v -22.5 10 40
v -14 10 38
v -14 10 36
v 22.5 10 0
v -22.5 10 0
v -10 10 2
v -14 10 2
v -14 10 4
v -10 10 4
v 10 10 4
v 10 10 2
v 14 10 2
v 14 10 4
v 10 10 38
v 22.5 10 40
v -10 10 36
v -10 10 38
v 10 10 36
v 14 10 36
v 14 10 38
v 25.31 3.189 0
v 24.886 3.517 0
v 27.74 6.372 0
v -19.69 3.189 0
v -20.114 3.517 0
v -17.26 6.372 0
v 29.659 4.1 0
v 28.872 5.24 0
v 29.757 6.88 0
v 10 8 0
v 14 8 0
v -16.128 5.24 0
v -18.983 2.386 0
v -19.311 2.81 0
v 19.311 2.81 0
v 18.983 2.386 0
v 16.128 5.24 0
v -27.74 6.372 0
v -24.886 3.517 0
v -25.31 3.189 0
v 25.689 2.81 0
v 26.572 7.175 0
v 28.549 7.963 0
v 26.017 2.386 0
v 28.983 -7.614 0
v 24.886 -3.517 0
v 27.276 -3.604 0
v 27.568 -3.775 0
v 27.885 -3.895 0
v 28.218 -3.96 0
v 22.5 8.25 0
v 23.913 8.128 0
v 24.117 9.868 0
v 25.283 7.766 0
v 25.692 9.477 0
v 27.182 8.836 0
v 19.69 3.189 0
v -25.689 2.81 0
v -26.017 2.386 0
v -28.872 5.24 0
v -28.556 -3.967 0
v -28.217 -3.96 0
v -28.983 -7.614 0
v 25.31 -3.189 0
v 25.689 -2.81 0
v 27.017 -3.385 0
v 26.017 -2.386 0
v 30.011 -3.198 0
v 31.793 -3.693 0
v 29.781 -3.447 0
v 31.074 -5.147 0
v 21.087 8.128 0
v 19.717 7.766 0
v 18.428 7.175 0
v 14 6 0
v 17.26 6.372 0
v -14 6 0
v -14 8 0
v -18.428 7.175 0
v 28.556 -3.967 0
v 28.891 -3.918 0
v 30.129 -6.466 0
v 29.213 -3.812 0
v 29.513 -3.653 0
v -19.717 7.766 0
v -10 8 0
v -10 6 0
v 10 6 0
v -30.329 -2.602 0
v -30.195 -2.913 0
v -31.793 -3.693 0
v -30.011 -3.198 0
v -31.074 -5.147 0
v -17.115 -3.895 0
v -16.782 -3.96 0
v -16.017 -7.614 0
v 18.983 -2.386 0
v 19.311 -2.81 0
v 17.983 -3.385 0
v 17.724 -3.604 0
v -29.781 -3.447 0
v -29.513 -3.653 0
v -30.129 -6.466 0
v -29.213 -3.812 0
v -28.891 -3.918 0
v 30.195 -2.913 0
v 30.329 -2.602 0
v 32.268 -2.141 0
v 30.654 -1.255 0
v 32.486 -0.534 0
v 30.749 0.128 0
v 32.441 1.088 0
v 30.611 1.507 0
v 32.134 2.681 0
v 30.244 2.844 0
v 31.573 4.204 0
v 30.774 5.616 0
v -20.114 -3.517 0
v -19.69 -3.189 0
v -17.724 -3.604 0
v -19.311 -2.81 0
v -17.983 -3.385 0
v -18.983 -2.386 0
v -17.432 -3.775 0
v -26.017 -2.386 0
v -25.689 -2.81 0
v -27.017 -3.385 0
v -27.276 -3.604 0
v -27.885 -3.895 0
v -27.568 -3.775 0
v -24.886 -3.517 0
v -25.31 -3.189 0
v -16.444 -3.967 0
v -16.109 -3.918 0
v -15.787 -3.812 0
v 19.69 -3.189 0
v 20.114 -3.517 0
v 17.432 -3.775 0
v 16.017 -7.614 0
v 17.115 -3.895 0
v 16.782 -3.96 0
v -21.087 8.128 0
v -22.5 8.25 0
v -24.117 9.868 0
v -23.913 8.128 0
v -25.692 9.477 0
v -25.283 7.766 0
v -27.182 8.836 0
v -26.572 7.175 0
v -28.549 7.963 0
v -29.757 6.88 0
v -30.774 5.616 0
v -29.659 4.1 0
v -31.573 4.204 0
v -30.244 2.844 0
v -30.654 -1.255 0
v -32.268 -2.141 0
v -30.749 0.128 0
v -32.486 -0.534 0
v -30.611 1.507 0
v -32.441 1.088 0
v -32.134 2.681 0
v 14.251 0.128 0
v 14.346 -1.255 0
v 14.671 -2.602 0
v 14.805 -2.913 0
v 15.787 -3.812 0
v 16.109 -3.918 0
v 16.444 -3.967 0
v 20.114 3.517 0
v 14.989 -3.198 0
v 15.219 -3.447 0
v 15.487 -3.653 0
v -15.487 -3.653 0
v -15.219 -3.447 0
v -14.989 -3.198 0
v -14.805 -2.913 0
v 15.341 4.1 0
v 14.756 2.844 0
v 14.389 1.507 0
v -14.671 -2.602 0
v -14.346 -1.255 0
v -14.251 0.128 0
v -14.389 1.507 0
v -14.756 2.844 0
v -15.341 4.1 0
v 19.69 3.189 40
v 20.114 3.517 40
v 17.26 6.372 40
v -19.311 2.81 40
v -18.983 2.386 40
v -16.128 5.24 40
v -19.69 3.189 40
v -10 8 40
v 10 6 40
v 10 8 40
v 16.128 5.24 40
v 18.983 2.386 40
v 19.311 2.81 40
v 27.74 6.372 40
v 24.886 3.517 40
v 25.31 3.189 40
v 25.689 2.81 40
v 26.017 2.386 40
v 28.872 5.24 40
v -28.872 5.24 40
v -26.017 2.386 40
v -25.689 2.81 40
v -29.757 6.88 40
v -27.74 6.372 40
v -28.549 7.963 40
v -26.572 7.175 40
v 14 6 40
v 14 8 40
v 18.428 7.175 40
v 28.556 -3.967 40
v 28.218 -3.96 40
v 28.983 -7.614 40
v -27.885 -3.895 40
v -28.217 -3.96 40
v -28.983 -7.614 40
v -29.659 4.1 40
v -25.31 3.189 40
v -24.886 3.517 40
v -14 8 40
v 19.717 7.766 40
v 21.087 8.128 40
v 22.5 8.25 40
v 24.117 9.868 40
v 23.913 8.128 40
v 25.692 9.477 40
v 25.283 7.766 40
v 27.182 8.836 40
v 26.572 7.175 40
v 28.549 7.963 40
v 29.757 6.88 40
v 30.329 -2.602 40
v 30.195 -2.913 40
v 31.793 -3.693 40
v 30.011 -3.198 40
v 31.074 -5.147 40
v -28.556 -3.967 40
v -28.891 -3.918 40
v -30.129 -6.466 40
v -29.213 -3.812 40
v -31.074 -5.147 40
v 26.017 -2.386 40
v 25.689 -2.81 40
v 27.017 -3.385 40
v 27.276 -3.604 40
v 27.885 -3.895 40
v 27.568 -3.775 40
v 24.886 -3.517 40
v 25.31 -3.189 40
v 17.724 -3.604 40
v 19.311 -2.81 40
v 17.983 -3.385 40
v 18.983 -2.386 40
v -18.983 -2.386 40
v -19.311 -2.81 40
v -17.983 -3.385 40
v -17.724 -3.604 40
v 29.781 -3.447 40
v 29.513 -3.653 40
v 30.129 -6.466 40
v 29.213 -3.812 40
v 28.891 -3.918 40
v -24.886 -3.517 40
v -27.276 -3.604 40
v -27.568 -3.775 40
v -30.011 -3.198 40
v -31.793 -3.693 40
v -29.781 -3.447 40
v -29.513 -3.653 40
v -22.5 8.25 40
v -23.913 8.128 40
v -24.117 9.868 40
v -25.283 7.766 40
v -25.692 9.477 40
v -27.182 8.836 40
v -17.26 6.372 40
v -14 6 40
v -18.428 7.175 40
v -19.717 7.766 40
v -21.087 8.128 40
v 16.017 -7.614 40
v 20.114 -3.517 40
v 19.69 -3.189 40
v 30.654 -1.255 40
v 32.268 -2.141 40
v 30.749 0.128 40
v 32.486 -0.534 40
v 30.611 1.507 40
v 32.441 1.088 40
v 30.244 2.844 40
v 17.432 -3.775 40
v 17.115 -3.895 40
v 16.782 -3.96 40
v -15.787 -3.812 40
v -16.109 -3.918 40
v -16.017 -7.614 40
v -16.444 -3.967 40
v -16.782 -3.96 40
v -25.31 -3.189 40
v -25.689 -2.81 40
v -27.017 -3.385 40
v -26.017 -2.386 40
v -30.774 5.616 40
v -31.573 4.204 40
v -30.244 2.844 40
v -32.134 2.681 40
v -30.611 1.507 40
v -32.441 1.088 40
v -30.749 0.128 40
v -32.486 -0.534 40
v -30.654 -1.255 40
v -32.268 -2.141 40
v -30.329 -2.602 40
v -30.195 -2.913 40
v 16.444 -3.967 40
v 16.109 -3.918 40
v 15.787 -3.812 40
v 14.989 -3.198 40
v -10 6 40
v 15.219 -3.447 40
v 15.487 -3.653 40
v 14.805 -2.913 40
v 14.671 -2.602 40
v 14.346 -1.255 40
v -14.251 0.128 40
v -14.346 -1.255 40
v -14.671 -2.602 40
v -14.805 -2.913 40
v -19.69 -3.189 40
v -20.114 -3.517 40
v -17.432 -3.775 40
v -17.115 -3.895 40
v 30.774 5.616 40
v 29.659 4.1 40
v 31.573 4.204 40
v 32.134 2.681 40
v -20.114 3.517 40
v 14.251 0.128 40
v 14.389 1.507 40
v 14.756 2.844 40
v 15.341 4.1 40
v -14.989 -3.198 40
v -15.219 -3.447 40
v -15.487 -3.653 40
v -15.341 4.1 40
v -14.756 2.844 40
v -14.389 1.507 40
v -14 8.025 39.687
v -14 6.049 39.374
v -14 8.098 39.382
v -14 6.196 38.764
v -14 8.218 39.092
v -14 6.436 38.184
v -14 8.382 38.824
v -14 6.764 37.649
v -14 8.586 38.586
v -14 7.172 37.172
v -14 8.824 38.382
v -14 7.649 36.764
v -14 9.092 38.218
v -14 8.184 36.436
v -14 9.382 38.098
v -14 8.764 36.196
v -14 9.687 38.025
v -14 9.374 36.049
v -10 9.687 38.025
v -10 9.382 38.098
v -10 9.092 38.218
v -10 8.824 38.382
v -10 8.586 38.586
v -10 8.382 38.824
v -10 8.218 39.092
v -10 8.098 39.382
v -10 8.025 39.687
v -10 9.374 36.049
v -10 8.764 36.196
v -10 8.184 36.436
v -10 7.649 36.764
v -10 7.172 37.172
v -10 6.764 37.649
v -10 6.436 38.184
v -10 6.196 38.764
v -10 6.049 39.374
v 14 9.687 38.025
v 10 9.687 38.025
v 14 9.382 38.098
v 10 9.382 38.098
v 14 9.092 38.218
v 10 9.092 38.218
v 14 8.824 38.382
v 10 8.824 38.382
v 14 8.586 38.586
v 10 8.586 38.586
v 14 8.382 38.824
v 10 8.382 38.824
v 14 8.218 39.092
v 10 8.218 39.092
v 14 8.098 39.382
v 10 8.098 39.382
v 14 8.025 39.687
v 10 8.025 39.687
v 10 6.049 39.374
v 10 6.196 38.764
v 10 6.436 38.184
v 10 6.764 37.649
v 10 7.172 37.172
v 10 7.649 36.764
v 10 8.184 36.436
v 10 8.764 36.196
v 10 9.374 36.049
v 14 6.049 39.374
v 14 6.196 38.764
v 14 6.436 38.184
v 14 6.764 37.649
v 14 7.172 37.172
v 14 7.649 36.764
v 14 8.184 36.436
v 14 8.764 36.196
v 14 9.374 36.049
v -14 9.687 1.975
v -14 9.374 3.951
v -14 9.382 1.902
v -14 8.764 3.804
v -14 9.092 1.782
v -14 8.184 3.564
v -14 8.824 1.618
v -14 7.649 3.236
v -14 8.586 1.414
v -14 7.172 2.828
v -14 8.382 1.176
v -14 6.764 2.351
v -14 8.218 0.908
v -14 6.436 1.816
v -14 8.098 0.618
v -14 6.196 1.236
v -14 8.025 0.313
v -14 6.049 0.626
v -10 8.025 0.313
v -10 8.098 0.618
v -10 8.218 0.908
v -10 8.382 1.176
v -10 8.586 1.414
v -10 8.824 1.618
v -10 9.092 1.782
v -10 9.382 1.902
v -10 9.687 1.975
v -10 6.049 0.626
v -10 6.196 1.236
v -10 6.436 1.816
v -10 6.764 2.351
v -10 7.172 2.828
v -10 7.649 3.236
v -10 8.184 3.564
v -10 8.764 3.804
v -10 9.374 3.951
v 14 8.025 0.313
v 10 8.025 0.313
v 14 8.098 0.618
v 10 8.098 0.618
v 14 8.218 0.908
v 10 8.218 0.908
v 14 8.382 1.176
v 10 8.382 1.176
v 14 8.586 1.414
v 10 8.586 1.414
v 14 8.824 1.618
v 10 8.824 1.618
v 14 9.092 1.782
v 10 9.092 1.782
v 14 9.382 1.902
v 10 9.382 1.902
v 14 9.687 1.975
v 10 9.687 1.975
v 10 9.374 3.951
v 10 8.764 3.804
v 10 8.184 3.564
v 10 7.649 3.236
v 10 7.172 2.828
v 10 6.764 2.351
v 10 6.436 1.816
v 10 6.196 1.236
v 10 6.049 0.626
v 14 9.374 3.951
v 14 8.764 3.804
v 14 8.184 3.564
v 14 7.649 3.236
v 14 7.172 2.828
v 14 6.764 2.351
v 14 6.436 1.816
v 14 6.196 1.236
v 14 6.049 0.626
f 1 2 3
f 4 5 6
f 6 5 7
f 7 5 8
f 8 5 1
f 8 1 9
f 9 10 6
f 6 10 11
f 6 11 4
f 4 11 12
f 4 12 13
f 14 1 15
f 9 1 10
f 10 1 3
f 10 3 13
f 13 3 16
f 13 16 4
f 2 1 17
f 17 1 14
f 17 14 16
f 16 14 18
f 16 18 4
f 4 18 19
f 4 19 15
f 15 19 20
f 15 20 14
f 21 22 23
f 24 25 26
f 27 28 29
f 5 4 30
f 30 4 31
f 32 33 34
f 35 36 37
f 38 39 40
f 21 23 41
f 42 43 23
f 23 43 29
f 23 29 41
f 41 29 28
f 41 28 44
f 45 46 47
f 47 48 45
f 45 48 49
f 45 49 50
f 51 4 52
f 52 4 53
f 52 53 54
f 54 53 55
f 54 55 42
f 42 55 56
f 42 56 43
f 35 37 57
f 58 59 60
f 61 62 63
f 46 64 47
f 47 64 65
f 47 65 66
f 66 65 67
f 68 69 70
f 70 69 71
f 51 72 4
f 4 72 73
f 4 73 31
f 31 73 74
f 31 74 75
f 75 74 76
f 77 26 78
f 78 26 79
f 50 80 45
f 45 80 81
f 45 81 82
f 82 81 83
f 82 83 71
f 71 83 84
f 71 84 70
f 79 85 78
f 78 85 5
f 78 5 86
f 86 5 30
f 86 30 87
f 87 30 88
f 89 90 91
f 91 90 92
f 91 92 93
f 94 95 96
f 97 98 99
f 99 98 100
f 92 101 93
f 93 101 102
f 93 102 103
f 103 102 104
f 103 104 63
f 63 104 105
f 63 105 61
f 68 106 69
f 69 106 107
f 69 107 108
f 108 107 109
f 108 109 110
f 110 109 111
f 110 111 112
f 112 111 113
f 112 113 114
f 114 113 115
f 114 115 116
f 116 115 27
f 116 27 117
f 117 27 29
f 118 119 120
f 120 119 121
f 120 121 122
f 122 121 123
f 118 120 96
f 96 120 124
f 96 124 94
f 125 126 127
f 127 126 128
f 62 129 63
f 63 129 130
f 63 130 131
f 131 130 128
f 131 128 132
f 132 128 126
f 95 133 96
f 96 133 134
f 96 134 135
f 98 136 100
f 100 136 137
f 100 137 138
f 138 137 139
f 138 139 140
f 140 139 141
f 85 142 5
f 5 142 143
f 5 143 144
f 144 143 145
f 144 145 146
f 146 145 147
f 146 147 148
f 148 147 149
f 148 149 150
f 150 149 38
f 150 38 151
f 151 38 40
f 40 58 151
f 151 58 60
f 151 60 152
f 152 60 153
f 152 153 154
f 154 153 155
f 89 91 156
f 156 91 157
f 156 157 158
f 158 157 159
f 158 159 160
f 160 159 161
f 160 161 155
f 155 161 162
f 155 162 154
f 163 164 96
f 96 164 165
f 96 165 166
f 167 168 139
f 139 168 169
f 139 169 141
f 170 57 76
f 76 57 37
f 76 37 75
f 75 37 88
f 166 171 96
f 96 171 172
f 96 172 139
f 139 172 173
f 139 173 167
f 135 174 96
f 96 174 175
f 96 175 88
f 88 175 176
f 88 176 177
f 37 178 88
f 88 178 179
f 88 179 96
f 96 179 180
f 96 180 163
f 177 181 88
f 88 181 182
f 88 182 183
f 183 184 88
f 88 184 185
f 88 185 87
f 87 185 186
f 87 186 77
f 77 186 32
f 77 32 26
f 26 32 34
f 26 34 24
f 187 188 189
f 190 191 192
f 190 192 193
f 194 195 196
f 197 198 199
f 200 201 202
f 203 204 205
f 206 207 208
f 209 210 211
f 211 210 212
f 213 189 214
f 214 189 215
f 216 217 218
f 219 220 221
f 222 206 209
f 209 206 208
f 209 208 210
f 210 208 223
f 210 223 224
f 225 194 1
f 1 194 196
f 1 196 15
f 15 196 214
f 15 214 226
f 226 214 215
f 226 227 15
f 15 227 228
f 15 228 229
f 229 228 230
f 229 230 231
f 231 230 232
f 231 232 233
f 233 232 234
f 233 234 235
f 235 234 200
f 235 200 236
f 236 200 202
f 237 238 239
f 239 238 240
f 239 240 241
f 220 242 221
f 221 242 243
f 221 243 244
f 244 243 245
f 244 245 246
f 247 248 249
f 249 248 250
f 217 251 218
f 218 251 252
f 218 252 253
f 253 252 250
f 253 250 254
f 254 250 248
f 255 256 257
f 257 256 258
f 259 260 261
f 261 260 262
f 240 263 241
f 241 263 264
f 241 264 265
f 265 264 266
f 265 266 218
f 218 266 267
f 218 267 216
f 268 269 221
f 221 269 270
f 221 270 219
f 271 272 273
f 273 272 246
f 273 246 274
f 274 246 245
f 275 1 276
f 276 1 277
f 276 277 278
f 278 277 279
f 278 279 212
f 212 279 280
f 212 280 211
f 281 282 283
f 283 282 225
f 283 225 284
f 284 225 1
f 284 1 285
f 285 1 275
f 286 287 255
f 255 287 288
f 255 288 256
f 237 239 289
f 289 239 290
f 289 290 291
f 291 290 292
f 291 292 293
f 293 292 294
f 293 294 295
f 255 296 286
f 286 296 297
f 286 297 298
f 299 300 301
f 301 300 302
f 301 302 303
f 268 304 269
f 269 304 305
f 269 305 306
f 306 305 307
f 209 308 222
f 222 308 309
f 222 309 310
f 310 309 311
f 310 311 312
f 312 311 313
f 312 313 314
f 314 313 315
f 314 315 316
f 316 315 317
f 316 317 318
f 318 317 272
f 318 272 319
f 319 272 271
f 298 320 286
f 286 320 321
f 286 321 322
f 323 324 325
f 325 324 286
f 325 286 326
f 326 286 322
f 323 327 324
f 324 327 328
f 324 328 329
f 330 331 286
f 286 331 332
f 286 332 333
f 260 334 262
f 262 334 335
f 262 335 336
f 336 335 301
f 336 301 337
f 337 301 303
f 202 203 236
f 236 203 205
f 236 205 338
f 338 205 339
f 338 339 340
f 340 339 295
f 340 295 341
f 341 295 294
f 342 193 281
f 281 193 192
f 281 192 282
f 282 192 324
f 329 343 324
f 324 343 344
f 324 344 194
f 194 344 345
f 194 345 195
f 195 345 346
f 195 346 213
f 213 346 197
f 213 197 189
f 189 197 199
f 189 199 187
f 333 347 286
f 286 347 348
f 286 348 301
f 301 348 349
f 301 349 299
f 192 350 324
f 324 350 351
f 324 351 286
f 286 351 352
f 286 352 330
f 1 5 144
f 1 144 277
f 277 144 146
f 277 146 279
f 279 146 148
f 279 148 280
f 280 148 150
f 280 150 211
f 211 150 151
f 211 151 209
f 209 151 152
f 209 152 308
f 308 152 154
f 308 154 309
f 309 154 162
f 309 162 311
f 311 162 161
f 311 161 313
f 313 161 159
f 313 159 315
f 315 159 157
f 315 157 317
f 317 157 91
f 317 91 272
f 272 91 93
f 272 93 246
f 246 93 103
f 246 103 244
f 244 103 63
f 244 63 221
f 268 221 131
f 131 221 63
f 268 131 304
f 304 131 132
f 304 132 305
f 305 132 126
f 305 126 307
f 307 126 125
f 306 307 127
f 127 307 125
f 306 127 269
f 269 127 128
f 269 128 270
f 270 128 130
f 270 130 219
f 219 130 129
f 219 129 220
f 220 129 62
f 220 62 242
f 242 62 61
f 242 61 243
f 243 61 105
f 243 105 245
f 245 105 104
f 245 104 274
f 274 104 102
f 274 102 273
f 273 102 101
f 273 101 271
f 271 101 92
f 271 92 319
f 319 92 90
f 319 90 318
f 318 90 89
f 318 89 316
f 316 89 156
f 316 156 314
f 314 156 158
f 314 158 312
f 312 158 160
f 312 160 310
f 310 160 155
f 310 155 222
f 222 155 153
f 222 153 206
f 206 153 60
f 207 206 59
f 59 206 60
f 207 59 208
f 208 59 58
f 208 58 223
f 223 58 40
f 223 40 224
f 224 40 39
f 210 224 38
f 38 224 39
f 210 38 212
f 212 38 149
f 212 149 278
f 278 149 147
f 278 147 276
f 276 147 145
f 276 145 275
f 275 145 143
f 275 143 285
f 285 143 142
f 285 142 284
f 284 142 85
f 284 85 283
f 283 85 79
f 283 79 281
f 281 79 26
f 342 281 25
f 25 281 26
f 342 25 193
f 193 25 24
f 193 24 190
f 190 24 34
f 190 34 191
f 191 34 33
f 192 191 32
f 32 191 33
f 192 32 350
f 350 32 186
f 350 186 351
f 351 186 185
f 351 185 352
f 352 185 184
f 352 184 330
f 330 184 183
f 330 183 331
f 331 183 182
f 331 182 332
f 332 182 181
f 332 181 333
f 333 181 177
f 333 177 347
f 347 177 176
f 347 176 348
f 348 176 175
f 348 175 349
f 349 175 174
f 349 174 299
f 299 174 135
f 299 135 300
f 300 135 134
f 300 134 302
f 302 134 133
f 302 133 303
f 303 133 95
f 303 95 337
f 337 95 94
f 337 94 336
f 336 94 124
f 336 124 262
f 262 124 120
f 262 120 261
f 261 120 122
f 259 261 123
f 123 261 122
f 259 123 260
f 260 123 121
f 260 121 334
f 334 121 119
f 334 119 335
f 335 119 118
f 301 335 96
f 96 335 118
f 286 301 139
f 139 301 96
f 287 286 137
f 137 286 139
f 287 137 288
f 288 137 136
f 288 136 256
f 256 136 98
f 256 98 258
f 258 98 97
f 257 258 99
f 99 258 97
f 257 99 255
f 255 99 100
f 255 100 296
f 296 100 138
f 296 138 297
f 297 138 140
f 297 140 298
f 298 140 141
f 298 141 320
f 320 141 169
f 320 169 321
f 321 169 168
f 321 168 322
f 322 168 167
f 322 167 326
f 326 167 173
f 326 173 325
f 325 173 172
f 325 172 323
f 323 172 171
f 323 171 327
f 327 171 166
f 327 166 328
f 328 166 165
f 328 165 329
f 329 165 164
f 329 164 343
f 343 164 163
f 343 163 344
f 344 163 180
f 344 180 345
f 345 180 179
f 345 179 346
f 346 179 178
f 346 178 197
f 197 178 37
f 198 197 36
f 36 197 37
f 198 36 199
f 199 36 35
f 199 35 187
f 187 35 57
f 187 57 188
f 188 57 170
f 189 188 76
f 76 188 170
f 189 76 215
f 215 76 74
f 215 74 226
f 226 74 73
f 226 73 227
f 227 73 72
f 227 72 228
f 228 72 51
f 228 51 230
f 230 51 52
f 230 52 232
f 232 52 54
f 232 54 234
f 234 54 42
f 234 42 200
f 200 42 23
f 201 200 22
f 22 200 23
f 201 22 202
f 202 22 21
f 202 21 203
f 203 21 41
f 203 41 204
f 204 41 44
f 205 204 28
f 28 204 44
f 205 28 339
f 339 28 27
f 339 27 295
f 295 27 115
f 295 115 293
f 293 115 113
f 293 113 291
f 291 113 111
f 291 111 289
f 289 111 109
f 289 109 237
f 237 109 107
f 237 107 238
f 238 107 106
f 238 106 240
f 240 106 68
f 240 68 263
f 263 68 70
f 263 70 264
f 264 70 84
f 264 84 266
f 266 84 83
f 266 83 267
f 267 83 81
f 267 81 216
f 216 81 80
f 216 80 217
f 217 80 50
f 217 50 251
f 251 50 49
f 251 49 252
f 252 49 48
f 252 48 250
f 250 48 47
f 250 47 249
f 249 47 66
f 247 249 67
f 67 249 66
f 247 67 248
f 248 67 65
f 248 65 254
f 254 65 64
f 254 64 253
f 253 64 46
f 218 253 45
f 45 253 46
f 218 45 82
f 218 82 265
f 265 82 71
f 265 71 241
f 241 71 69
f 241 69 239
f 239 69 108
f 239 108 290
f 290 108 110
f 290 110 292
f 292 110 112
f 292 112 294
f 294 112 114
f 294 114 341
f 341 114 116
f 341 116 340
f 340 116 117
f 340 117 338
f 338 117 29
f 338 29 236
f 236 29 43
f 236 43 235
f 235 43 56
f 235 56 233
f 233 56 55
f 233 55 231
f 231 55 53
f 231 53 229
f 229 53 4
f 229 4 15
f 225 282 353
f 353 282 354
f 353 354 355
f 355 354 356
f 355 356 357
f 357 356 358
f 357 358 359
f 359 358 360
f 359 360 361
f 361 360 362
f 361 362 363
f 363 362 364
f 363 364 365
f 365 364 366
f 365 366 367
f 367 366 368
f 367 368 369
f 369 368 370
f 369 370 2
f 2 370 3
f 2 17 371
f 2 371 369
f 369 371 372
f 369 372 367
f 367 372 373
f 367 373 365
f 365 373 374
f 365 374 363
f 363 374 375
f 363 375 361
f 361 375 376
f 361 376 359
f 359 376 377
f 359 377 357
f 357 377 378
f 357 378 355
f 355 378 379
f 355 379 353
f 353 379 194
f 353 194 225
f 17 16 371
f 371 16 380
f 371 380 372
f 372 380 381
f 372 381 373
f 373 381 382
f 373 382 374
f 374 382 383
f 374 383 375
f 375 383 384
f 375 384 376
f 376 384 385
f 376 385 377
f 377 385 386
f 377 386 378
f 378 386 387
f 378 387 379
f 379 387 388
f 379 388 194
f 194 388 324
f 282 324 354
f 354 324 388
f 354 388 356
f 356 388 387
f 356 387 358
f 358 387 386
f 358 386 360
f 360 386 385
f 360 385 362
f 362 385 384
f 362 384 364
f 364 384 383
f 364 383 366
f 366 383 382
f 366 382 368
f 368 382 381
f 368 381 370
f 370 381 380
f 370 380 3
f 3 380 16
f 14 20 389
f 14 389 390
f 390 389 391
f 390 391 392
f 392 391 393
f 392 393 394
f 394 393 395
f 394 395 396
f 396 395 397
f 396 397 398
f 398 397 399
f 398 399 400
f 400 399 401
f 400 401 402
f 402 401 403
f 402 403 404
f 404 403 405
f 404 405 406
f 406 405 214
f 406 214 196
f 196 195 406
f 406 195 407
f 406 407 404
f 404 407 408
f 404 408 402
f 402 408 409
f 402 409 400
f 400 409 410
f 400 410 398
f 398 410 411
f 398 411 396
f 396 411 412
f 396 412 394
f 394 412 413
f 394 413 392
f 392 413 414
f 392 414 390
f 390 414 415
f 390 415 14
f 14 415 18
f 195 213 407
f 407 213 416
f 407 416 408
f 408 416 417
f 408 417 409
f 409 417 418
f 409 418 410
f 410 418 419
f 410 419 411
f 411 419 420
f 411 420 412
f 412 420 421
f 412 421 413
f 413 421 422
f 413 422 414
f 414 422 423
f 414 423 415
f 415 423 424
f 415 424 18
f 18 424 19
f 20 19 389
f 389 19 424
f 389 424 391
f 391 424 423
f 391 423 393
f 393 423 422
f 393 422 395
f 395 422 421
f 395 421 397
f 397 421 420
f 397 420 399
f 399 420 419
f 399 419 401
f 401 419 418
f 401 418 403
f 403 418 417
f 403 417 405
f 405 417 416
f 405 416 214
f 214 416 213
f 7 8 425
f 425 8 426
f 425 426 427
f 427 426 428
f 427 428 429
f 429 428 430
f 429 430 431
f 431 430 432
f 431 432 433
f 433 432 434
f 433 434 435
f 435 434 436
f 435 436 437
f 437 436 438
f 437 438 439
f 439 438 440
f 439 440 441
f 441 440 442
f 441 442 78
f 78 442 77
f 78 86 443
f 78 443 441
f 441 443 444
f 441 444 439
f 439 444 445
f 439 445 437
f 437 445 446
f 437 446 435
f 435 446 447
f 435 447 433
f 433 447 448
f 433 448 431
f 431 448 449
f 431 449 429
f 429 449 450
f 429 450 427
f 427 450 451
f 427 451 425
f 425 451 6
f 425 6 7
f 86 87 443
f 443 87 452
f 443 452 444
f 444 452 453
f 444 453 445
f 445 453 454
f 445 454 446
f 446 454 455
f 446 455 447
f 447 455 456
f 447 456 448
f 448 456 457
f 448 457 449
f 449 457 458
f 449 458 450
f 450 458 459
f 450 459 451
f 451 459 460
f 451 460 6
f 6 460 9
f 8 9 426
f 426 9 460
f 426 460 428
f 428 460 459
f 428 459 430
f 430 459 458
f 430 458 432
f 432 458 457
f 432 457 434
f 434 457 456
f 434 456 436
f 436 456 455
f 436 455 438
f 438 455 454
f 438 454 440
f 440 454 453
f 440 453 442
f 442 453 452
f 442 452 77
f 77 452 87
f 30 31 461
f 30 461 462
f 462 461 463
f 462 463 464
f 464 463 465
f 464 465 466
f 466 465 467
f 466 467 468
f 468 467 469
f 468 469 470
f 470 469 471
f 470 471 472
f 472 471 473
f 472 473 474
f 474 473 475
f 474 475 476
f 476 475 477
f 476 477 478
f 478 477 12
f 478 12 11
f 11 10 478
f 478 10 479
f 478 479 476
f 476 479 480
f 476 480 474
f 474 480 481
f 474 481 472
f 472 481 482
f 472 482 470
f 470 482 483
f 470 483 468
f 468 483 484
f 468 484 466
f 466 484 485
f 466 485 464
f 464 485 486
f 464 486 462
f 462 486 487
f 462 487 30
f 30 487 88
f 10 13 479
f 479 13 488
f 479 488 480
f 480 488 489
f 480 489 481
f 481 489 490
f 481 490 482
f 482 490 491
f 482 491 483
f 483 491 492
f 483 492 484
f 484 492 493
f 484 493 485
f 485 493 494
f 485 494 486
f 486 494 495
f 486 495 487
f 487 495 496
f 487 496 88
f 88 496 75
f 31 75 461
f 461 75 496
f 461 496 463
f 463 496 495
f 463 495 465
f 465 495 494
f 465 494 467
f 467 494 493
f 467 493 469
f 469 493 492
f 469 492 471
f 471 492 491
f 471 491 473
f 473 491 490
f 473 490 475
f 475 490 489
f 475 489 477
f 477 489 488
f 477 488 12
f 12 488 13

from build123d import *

# Parameters (mm, degrees)
BOSS_EXTRUDE1_DEPTH = 40


with BuildPart() as part:
    # Sketch1 → Boss-Extrude1 (new body)
    with BuildSketch(Plane.XY):
        with BuildLine():
            Line((-18.982831897, 2.385797253), (-16.128175583, 5.240453568))
            ThreePointArc((-16.128175583, 5.240453568), (-14.388813512, 1.507034758), (-14.671071516, -2.601995157))
            ThreePointArc((-14.671071516, -2.601995157), (-16.108631881, -3.917504194), (-17.983207135, -3.385422015))
            Line((-17.983207135, -3.385422015), (-18.982831897, -2.385797253))
            ThreePointArc((-18.982831897, -2.385797253), (-19.49479618, -3.00520382), (-20.114202747, -3.517168103))
            Line((-20.114202747, -3.517168103), (-16.01728135, -7.6140895))
            Line((-16.01728135, -7.6140895), (16.01728135, -7.6140895))
            Line((16.01728135, -7.6140895), (20.114202747, -3.517168103))
            ThreePointArc((20.114202747, -3.517168103), (19.49479618, -3.00520382), (18.982831897, -2.385797253))
            Line((18.982831897, -2.385797253), (17.983207135, -3.385422015))
            ThreePointArc((17.983207135, -3.385422015), (16.108631881, -3.917504194), (14.671071516, -2.601995157))
            ThreePointArc((14.671071516, -2.601995157), (14.388813512, 1.507034758), (16.128175583, 5.240453568))
            Line((16.128175583, 5.240453568), (18.982831897, 2.385797253))
            ThreePointArc((18.982831897, 2.385797253), (19.49479618, 3.00520382), (20.114202747, 3.517168103))
            Line((20.114202747, 3.517168103), (17.259546432, 6.371824417))
            ThreePointArc((17.259546432, 6.371824417), (22.5, 8.25), (27.740453568, 6.371824417))
            Line((27.740453568, 6.371824417), (24.885797253, 3.517168103))
            ThreePointArc((24.885797253, 3.517168103), (25.50520382, 3.00520382), (26.017168103, 2.385797253))
            Line((26.017168103, 2.385797253), (28.871824417, 5.240453568))
            ThreePointArc((28.871824417, 5.240453568), (30.611186488, 1.507034758), (30.328928484, -2.601995157))
            ThreePointArc((30.328928484, -2.601995157), (28.891368119, -3.917504194), (27.016792865, -3.385422015))
            Line((27.016792865, -3.385422015), (26.017168103, -2.385797253))
            ThreePointArc((26.017168103, -2.385797253), (25.50520382, -3.00520382), (24.885797253, -3.517168103))
            Line((24.885797253, -3.517168103), (28.98271865, -7.6140895))
            ThreePointArc((28.98271865, -7.6140895), (31.884585633, 3.453918427), (22.5, 10))
            Line((22.5, 10), (-22.5, 10))
            ThreePointArc((-22.5, 10), (-31.884585633, 3.453918427), (-28.98271865, -7.6140895))
            Line((-28.98271865, -7.6140895), (-24.885797253, -3.517168103))
            ThreePointArc((-24.885797253, -3.517168103), (-25.50520382, -3.00520382), (-26.017168103, -2.385797253))
            Line((-26.017168103, -2.385797253), (-27.016792865, -3.385422015))
            ThreePointArc((-27.016792865, -3.385422015), (-28.891368119, -3.917504194), (-30.328928484, -2.601995157))
            ThreePointArc((-30.328928484, -2.601995157), (-30.611186488, 1.507034758), (-28.871824417, 5.240453568))
            Line((-28.871824417, 5.240453568), (-26.017168103, 2.385797253))
            ThreePointArc((-26.017168103, 2.385797253), (-25.50520382, 3.00520382), (-24.885797253, 3.517168103))
            Line((-24.885797253, 3.517168103), (-27.740453568, 6.371824417))
            ThreePointArc((-27.740453568, 6.371824417), (-22.5, 8.25), (-17.259546432, 6.371824417))
            Line((-17.259546432, 6.371824417), (-20.114202747, 3.517168103))
            ThreePointArc((-20.114202747, 3.517168103), (-19.49479618, 3.00520382), (-18.982831897, 2.385797253))
        make_face()
    extrude(amount=BOSS_EXTRUDE1_DEPTH)

    # Sketch3 → Cut-Revolve1 (revolve, cut)
    with BuildSketch(Plane.XY.offset(40)):
        Polygon((12, 8), (10, 8), (10, 6), (14, 6), (14, 8), align=None)
        Polygon((-14, 8), (-12, 8), (-10, 8), (-10, 6), (-14, 6), align=None)
    cut_revolve1 = revolve(axis=Axis((-22.5, 10, 40), (-1, 0, 0)), mode=Mode.SUBTRACT)

    # Mirror1: Cut-Revolve1 across plane
    add(cut_revolve1.mirror(Plane.XY.offset(20)), mode=Mode.SUBTRACT)


solid = part.part
